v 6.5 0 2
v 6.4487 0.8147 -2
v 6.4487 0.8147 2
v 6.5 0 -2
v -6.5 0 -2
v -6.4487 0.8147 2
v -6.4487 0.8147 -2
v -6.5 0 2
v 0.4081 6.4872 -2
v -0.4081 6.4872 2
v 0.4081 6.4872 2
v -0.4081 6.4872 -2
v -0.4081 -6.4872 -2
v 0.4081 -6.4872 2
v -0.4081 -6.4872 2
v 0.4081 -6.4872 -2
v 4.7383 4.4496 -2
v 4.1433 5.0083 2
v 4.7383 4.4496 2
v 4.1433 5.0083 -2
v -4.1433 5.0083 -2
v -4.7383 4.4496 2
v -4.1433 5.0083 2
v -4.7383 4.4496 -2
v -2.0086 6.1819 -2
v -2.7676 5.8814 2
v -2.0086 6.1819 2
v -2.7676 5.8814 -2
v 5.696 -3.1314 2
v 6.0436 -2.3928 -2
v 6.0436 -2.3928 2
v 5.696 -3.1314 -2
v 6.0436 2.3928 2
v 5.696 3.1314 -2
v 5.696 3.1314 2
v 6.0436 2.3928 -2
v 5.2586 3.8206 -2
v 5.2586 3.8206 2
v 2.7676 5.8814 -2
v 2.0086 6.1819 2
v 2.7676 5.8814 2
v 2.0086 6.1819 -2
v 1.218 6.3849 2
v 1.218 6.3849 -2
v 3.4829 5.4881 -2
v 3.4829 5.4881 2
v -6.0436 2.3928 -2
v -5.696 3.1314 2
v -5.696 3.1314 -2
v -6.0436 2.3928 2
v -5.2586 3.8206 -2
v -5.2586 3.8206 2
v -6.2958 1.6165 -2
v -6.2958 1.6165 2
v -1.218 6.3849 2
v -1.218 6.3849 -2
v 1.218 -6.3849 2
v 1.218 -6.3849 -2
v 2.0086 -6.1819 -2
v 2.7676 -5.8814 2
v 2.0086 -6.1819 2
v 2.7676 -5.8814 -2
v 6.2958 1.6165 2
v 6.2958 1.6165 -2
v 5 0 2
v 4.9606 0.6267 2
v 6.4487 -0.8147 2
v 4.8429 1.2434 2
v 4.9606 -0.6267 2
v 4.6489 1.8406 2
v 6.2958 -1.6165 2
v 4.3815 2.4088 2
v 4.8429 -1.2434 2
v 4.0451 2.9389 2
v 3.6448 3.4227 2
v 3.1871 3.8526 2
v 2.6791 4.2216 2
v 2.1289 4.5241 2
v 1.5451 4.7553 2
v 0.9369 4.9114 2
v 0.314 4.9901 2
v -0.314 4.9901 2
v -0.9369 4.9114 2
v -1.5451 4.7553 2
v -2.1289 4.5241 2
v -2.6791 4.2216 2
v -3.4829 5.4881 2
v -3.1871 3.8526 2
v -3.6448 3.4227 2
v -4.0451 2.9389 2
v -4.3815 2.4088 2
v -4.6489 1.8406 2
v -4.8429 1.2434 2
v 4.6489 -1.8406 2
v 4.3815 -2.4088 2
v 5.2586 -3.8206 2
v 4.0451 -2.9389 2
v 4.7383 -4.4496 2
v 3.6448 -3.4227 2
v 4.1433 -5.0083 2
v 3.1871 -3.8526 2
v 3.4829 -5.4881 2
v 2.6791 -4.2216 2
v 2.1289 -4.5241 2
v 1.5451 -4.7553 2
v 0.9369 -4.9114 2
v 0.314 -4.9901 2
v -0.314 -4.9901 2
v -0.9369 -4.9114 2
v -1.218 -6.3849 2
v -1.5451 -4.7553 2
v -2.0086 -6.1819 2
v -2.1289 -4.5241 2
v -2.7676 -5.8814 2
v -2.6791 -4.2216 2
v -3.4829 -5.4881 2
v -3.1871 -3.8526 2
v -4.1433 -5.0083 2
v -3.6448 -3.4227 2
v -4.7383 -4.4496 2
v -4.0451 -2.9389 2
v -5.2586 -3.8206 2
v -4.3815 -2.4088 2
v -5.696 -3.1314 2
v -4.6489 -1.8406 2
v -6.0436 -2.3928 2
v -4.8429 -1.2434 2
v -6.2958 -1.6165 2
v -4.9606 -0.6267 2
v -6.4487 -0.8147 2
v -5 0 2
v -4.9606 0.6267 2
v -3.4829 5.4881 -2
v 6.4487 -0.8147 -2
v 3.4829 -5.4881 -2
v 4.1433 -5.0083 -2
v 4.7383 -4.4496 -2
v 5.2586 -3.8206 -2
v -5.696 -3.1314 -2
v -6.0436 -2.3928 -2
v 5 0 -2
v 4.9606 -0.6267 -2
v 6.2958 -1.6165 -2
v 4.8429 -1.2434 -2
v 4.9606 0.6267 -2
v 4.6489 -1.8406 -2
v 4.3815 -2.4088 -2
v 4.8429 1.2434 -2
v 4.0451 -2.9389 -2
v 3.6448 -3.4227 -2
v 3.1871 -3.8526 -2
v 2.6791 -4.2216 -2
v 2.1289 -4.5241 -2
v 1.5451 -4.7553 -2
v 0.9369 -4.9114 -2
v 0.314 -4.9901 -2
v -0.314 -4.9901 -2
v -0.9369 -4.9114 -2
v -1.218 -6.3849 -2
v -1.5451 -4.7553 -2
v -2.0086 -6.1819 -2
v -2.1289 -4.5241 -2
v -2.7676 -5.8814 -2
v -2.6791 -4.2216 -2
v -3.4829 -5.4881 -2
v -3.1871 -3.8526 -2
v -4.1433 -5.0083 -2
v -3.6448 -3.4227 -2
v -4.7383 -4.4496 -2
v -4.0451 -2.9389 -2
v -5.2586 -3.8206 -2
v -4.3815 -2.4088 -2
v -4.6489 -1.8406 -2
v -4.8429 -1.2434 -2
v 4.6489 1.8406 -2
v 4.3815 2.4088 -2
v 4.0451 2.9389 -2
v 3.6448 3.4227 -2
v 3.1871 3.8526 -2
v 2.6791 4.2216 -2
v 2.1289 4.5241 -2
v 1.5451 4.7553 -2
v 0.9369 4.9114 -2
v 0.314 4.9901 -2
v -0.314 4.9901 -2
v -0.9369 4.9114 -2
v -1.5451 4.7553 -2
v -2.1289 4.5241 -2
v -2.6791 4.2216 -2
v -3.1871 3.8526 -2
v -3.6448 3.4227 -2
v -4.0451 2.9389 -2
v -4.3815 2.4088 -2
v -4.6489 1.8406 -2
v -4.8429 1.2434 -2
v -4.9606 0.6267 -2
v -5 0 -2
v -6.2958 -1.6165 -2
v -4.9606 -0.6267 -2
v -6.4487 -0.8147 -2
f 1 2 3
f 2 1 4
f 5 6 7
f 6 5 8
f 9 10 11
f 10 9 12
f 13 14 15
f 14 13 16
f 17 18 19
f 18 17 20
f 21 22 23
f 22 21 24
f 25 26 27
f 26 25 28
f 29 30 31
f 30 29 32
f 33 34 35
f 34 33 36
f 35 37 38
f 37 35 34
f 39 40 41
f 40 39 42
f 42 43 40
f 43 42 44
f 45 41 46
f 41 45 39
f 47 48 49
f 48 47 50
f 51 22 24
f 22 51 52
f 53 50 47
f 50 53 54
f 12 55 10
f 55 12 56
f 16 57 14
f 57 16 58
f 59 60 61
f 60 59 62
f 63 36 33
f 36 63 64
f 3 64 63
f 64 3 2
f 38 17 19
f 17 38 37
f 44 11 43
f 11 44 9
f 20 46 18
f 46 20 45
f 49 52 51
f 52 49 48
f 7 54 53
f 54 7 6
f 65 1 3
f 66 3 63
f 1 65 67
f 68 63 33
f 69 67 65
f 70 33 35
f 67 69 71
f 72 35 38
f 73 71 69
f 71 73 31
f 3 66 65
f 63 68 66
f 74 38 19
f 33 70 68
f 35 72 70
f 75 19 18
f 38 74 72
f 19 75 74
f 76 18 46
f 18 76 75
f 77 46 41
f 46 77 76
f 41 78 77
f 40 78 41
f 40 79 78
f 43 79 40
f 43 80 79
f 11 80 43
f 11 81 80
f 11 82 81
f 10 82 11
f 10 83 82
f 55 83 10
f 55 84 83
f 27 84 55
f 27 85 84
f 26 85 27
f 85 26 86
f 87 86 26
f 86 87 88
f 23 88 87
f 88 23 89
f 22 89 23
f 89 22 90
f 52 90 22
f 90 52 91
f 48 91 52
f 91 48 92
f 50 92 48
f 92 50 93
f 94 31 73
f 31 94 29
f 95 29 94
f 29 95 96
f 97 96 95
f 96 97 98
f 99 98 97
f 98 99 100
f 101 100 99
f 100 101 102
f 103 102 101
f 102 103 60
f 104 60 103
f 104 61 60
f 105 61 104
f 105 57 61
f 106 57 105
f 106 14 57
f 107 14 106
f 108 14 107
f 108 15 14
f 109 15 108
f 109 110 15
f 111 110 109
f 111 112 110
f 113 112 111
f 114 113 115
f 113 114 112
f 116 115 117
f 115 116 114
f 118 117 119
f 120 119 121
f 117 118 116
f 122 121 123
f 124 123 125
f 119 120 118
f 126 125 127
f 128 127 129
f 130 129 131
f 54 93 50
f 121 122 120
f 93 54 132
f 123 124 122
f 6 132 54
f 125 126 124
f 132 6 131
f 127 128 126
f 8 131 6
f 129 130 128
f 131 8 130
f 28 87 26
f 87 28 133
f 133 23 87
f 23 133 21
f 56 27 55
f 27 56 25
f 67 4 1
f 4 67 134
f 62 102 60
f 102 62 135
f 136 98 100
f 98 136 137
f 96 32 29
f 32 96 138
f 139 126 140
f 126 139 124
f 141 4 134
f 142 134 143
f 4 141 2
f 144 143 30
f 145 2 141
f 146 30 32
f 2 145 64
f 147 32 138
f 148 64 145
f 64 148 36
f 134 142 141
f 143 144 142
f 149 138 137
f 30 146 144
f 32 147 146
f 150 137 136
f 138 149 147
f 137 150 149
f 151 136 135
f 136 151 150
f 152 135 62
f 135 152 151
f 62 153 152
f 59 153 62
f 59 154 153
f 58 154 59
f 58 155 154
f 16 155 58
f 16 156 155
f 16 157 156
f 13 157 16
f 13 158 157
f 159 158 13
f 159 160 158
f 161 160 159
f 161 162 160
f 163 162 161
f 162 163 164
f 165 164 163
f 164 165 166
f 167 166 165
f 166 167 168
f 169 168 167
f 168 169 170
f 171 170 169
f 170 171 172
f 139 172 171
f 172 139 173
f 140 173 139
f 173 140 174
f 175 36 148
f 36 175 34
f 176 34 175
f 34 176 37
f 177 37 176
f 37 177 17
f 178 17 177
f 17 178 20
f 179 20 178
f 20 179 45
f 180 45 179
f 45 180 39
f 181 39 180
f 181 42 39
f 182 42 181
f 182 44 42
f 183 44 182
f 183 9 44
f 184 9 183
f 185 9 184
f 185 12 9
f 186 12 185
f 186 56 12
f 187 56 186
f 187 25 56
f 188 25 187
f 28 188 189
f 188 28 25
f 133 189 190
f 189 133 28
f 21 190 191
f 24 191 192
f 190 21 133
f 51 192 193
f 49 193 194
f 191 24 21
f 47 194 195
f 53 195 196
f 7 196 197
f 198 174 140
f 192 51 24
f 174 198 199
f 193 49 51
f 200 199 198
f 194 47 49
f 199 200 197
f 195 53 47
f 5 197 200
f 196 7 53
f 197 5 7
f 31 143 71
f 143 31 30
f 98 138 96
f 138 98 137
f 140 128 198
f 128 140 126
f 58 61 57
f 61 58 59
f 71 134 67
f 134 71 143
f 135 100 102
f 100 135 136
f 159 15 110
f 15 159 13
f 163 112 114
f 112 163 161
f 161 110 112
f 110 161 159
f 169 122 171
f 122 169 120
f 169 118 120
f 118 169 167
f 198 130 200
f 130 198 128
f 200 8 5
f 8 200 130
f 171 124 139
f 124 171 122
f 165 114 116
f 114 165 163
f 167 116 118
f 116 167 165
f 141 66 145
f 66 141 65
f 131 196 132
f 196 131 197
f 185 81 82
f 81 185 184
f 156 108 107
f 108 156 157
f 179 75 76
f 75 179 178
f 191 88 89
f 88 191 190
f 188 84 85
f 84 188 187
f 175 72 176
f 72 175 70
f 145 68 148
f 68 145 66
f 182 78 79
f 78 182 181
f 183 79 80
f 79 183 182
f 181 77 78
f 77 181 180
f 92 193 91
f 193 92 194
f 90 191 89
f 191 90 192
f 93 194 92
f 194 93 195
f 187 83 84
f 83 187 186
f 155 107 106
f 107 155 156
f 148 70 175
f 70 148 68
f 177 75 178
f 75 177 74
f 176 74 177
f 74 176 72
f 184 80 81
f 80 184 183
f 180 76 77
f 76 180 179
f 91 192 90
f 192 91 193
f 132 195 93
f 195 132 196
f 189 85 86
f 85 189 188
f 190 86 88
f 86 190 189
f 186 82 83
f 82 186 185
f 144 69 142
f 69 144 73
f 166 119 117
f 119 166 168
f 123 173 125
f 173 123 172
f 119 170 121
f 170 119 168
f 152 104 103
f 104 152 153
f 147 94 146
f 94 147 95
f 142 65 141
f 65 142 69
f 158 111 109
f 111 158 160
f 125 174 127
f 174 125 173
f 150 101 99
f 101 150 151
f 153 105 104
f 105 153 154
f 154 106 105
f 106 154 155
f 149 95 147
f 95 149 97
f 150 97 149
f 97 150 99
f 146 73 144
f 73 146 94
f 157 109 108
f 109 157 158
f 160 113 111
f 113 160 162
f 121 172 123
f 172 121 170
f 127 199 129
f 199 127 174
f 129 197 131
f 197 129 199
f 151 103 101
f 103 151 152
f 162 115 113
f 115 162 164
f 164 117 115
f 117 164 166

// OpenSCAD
$fn = 50;


difference() {
	union() {
		translate(v = [0, 0, -2.0000000000]) {
			cylinder(h = 4, r = 6.5000000000);
		}
	}
	union() {
		translate(v = [0, 0, -100.0000000000]) {
			cylinder(h = 200, r = 5);
		}
	}
}
